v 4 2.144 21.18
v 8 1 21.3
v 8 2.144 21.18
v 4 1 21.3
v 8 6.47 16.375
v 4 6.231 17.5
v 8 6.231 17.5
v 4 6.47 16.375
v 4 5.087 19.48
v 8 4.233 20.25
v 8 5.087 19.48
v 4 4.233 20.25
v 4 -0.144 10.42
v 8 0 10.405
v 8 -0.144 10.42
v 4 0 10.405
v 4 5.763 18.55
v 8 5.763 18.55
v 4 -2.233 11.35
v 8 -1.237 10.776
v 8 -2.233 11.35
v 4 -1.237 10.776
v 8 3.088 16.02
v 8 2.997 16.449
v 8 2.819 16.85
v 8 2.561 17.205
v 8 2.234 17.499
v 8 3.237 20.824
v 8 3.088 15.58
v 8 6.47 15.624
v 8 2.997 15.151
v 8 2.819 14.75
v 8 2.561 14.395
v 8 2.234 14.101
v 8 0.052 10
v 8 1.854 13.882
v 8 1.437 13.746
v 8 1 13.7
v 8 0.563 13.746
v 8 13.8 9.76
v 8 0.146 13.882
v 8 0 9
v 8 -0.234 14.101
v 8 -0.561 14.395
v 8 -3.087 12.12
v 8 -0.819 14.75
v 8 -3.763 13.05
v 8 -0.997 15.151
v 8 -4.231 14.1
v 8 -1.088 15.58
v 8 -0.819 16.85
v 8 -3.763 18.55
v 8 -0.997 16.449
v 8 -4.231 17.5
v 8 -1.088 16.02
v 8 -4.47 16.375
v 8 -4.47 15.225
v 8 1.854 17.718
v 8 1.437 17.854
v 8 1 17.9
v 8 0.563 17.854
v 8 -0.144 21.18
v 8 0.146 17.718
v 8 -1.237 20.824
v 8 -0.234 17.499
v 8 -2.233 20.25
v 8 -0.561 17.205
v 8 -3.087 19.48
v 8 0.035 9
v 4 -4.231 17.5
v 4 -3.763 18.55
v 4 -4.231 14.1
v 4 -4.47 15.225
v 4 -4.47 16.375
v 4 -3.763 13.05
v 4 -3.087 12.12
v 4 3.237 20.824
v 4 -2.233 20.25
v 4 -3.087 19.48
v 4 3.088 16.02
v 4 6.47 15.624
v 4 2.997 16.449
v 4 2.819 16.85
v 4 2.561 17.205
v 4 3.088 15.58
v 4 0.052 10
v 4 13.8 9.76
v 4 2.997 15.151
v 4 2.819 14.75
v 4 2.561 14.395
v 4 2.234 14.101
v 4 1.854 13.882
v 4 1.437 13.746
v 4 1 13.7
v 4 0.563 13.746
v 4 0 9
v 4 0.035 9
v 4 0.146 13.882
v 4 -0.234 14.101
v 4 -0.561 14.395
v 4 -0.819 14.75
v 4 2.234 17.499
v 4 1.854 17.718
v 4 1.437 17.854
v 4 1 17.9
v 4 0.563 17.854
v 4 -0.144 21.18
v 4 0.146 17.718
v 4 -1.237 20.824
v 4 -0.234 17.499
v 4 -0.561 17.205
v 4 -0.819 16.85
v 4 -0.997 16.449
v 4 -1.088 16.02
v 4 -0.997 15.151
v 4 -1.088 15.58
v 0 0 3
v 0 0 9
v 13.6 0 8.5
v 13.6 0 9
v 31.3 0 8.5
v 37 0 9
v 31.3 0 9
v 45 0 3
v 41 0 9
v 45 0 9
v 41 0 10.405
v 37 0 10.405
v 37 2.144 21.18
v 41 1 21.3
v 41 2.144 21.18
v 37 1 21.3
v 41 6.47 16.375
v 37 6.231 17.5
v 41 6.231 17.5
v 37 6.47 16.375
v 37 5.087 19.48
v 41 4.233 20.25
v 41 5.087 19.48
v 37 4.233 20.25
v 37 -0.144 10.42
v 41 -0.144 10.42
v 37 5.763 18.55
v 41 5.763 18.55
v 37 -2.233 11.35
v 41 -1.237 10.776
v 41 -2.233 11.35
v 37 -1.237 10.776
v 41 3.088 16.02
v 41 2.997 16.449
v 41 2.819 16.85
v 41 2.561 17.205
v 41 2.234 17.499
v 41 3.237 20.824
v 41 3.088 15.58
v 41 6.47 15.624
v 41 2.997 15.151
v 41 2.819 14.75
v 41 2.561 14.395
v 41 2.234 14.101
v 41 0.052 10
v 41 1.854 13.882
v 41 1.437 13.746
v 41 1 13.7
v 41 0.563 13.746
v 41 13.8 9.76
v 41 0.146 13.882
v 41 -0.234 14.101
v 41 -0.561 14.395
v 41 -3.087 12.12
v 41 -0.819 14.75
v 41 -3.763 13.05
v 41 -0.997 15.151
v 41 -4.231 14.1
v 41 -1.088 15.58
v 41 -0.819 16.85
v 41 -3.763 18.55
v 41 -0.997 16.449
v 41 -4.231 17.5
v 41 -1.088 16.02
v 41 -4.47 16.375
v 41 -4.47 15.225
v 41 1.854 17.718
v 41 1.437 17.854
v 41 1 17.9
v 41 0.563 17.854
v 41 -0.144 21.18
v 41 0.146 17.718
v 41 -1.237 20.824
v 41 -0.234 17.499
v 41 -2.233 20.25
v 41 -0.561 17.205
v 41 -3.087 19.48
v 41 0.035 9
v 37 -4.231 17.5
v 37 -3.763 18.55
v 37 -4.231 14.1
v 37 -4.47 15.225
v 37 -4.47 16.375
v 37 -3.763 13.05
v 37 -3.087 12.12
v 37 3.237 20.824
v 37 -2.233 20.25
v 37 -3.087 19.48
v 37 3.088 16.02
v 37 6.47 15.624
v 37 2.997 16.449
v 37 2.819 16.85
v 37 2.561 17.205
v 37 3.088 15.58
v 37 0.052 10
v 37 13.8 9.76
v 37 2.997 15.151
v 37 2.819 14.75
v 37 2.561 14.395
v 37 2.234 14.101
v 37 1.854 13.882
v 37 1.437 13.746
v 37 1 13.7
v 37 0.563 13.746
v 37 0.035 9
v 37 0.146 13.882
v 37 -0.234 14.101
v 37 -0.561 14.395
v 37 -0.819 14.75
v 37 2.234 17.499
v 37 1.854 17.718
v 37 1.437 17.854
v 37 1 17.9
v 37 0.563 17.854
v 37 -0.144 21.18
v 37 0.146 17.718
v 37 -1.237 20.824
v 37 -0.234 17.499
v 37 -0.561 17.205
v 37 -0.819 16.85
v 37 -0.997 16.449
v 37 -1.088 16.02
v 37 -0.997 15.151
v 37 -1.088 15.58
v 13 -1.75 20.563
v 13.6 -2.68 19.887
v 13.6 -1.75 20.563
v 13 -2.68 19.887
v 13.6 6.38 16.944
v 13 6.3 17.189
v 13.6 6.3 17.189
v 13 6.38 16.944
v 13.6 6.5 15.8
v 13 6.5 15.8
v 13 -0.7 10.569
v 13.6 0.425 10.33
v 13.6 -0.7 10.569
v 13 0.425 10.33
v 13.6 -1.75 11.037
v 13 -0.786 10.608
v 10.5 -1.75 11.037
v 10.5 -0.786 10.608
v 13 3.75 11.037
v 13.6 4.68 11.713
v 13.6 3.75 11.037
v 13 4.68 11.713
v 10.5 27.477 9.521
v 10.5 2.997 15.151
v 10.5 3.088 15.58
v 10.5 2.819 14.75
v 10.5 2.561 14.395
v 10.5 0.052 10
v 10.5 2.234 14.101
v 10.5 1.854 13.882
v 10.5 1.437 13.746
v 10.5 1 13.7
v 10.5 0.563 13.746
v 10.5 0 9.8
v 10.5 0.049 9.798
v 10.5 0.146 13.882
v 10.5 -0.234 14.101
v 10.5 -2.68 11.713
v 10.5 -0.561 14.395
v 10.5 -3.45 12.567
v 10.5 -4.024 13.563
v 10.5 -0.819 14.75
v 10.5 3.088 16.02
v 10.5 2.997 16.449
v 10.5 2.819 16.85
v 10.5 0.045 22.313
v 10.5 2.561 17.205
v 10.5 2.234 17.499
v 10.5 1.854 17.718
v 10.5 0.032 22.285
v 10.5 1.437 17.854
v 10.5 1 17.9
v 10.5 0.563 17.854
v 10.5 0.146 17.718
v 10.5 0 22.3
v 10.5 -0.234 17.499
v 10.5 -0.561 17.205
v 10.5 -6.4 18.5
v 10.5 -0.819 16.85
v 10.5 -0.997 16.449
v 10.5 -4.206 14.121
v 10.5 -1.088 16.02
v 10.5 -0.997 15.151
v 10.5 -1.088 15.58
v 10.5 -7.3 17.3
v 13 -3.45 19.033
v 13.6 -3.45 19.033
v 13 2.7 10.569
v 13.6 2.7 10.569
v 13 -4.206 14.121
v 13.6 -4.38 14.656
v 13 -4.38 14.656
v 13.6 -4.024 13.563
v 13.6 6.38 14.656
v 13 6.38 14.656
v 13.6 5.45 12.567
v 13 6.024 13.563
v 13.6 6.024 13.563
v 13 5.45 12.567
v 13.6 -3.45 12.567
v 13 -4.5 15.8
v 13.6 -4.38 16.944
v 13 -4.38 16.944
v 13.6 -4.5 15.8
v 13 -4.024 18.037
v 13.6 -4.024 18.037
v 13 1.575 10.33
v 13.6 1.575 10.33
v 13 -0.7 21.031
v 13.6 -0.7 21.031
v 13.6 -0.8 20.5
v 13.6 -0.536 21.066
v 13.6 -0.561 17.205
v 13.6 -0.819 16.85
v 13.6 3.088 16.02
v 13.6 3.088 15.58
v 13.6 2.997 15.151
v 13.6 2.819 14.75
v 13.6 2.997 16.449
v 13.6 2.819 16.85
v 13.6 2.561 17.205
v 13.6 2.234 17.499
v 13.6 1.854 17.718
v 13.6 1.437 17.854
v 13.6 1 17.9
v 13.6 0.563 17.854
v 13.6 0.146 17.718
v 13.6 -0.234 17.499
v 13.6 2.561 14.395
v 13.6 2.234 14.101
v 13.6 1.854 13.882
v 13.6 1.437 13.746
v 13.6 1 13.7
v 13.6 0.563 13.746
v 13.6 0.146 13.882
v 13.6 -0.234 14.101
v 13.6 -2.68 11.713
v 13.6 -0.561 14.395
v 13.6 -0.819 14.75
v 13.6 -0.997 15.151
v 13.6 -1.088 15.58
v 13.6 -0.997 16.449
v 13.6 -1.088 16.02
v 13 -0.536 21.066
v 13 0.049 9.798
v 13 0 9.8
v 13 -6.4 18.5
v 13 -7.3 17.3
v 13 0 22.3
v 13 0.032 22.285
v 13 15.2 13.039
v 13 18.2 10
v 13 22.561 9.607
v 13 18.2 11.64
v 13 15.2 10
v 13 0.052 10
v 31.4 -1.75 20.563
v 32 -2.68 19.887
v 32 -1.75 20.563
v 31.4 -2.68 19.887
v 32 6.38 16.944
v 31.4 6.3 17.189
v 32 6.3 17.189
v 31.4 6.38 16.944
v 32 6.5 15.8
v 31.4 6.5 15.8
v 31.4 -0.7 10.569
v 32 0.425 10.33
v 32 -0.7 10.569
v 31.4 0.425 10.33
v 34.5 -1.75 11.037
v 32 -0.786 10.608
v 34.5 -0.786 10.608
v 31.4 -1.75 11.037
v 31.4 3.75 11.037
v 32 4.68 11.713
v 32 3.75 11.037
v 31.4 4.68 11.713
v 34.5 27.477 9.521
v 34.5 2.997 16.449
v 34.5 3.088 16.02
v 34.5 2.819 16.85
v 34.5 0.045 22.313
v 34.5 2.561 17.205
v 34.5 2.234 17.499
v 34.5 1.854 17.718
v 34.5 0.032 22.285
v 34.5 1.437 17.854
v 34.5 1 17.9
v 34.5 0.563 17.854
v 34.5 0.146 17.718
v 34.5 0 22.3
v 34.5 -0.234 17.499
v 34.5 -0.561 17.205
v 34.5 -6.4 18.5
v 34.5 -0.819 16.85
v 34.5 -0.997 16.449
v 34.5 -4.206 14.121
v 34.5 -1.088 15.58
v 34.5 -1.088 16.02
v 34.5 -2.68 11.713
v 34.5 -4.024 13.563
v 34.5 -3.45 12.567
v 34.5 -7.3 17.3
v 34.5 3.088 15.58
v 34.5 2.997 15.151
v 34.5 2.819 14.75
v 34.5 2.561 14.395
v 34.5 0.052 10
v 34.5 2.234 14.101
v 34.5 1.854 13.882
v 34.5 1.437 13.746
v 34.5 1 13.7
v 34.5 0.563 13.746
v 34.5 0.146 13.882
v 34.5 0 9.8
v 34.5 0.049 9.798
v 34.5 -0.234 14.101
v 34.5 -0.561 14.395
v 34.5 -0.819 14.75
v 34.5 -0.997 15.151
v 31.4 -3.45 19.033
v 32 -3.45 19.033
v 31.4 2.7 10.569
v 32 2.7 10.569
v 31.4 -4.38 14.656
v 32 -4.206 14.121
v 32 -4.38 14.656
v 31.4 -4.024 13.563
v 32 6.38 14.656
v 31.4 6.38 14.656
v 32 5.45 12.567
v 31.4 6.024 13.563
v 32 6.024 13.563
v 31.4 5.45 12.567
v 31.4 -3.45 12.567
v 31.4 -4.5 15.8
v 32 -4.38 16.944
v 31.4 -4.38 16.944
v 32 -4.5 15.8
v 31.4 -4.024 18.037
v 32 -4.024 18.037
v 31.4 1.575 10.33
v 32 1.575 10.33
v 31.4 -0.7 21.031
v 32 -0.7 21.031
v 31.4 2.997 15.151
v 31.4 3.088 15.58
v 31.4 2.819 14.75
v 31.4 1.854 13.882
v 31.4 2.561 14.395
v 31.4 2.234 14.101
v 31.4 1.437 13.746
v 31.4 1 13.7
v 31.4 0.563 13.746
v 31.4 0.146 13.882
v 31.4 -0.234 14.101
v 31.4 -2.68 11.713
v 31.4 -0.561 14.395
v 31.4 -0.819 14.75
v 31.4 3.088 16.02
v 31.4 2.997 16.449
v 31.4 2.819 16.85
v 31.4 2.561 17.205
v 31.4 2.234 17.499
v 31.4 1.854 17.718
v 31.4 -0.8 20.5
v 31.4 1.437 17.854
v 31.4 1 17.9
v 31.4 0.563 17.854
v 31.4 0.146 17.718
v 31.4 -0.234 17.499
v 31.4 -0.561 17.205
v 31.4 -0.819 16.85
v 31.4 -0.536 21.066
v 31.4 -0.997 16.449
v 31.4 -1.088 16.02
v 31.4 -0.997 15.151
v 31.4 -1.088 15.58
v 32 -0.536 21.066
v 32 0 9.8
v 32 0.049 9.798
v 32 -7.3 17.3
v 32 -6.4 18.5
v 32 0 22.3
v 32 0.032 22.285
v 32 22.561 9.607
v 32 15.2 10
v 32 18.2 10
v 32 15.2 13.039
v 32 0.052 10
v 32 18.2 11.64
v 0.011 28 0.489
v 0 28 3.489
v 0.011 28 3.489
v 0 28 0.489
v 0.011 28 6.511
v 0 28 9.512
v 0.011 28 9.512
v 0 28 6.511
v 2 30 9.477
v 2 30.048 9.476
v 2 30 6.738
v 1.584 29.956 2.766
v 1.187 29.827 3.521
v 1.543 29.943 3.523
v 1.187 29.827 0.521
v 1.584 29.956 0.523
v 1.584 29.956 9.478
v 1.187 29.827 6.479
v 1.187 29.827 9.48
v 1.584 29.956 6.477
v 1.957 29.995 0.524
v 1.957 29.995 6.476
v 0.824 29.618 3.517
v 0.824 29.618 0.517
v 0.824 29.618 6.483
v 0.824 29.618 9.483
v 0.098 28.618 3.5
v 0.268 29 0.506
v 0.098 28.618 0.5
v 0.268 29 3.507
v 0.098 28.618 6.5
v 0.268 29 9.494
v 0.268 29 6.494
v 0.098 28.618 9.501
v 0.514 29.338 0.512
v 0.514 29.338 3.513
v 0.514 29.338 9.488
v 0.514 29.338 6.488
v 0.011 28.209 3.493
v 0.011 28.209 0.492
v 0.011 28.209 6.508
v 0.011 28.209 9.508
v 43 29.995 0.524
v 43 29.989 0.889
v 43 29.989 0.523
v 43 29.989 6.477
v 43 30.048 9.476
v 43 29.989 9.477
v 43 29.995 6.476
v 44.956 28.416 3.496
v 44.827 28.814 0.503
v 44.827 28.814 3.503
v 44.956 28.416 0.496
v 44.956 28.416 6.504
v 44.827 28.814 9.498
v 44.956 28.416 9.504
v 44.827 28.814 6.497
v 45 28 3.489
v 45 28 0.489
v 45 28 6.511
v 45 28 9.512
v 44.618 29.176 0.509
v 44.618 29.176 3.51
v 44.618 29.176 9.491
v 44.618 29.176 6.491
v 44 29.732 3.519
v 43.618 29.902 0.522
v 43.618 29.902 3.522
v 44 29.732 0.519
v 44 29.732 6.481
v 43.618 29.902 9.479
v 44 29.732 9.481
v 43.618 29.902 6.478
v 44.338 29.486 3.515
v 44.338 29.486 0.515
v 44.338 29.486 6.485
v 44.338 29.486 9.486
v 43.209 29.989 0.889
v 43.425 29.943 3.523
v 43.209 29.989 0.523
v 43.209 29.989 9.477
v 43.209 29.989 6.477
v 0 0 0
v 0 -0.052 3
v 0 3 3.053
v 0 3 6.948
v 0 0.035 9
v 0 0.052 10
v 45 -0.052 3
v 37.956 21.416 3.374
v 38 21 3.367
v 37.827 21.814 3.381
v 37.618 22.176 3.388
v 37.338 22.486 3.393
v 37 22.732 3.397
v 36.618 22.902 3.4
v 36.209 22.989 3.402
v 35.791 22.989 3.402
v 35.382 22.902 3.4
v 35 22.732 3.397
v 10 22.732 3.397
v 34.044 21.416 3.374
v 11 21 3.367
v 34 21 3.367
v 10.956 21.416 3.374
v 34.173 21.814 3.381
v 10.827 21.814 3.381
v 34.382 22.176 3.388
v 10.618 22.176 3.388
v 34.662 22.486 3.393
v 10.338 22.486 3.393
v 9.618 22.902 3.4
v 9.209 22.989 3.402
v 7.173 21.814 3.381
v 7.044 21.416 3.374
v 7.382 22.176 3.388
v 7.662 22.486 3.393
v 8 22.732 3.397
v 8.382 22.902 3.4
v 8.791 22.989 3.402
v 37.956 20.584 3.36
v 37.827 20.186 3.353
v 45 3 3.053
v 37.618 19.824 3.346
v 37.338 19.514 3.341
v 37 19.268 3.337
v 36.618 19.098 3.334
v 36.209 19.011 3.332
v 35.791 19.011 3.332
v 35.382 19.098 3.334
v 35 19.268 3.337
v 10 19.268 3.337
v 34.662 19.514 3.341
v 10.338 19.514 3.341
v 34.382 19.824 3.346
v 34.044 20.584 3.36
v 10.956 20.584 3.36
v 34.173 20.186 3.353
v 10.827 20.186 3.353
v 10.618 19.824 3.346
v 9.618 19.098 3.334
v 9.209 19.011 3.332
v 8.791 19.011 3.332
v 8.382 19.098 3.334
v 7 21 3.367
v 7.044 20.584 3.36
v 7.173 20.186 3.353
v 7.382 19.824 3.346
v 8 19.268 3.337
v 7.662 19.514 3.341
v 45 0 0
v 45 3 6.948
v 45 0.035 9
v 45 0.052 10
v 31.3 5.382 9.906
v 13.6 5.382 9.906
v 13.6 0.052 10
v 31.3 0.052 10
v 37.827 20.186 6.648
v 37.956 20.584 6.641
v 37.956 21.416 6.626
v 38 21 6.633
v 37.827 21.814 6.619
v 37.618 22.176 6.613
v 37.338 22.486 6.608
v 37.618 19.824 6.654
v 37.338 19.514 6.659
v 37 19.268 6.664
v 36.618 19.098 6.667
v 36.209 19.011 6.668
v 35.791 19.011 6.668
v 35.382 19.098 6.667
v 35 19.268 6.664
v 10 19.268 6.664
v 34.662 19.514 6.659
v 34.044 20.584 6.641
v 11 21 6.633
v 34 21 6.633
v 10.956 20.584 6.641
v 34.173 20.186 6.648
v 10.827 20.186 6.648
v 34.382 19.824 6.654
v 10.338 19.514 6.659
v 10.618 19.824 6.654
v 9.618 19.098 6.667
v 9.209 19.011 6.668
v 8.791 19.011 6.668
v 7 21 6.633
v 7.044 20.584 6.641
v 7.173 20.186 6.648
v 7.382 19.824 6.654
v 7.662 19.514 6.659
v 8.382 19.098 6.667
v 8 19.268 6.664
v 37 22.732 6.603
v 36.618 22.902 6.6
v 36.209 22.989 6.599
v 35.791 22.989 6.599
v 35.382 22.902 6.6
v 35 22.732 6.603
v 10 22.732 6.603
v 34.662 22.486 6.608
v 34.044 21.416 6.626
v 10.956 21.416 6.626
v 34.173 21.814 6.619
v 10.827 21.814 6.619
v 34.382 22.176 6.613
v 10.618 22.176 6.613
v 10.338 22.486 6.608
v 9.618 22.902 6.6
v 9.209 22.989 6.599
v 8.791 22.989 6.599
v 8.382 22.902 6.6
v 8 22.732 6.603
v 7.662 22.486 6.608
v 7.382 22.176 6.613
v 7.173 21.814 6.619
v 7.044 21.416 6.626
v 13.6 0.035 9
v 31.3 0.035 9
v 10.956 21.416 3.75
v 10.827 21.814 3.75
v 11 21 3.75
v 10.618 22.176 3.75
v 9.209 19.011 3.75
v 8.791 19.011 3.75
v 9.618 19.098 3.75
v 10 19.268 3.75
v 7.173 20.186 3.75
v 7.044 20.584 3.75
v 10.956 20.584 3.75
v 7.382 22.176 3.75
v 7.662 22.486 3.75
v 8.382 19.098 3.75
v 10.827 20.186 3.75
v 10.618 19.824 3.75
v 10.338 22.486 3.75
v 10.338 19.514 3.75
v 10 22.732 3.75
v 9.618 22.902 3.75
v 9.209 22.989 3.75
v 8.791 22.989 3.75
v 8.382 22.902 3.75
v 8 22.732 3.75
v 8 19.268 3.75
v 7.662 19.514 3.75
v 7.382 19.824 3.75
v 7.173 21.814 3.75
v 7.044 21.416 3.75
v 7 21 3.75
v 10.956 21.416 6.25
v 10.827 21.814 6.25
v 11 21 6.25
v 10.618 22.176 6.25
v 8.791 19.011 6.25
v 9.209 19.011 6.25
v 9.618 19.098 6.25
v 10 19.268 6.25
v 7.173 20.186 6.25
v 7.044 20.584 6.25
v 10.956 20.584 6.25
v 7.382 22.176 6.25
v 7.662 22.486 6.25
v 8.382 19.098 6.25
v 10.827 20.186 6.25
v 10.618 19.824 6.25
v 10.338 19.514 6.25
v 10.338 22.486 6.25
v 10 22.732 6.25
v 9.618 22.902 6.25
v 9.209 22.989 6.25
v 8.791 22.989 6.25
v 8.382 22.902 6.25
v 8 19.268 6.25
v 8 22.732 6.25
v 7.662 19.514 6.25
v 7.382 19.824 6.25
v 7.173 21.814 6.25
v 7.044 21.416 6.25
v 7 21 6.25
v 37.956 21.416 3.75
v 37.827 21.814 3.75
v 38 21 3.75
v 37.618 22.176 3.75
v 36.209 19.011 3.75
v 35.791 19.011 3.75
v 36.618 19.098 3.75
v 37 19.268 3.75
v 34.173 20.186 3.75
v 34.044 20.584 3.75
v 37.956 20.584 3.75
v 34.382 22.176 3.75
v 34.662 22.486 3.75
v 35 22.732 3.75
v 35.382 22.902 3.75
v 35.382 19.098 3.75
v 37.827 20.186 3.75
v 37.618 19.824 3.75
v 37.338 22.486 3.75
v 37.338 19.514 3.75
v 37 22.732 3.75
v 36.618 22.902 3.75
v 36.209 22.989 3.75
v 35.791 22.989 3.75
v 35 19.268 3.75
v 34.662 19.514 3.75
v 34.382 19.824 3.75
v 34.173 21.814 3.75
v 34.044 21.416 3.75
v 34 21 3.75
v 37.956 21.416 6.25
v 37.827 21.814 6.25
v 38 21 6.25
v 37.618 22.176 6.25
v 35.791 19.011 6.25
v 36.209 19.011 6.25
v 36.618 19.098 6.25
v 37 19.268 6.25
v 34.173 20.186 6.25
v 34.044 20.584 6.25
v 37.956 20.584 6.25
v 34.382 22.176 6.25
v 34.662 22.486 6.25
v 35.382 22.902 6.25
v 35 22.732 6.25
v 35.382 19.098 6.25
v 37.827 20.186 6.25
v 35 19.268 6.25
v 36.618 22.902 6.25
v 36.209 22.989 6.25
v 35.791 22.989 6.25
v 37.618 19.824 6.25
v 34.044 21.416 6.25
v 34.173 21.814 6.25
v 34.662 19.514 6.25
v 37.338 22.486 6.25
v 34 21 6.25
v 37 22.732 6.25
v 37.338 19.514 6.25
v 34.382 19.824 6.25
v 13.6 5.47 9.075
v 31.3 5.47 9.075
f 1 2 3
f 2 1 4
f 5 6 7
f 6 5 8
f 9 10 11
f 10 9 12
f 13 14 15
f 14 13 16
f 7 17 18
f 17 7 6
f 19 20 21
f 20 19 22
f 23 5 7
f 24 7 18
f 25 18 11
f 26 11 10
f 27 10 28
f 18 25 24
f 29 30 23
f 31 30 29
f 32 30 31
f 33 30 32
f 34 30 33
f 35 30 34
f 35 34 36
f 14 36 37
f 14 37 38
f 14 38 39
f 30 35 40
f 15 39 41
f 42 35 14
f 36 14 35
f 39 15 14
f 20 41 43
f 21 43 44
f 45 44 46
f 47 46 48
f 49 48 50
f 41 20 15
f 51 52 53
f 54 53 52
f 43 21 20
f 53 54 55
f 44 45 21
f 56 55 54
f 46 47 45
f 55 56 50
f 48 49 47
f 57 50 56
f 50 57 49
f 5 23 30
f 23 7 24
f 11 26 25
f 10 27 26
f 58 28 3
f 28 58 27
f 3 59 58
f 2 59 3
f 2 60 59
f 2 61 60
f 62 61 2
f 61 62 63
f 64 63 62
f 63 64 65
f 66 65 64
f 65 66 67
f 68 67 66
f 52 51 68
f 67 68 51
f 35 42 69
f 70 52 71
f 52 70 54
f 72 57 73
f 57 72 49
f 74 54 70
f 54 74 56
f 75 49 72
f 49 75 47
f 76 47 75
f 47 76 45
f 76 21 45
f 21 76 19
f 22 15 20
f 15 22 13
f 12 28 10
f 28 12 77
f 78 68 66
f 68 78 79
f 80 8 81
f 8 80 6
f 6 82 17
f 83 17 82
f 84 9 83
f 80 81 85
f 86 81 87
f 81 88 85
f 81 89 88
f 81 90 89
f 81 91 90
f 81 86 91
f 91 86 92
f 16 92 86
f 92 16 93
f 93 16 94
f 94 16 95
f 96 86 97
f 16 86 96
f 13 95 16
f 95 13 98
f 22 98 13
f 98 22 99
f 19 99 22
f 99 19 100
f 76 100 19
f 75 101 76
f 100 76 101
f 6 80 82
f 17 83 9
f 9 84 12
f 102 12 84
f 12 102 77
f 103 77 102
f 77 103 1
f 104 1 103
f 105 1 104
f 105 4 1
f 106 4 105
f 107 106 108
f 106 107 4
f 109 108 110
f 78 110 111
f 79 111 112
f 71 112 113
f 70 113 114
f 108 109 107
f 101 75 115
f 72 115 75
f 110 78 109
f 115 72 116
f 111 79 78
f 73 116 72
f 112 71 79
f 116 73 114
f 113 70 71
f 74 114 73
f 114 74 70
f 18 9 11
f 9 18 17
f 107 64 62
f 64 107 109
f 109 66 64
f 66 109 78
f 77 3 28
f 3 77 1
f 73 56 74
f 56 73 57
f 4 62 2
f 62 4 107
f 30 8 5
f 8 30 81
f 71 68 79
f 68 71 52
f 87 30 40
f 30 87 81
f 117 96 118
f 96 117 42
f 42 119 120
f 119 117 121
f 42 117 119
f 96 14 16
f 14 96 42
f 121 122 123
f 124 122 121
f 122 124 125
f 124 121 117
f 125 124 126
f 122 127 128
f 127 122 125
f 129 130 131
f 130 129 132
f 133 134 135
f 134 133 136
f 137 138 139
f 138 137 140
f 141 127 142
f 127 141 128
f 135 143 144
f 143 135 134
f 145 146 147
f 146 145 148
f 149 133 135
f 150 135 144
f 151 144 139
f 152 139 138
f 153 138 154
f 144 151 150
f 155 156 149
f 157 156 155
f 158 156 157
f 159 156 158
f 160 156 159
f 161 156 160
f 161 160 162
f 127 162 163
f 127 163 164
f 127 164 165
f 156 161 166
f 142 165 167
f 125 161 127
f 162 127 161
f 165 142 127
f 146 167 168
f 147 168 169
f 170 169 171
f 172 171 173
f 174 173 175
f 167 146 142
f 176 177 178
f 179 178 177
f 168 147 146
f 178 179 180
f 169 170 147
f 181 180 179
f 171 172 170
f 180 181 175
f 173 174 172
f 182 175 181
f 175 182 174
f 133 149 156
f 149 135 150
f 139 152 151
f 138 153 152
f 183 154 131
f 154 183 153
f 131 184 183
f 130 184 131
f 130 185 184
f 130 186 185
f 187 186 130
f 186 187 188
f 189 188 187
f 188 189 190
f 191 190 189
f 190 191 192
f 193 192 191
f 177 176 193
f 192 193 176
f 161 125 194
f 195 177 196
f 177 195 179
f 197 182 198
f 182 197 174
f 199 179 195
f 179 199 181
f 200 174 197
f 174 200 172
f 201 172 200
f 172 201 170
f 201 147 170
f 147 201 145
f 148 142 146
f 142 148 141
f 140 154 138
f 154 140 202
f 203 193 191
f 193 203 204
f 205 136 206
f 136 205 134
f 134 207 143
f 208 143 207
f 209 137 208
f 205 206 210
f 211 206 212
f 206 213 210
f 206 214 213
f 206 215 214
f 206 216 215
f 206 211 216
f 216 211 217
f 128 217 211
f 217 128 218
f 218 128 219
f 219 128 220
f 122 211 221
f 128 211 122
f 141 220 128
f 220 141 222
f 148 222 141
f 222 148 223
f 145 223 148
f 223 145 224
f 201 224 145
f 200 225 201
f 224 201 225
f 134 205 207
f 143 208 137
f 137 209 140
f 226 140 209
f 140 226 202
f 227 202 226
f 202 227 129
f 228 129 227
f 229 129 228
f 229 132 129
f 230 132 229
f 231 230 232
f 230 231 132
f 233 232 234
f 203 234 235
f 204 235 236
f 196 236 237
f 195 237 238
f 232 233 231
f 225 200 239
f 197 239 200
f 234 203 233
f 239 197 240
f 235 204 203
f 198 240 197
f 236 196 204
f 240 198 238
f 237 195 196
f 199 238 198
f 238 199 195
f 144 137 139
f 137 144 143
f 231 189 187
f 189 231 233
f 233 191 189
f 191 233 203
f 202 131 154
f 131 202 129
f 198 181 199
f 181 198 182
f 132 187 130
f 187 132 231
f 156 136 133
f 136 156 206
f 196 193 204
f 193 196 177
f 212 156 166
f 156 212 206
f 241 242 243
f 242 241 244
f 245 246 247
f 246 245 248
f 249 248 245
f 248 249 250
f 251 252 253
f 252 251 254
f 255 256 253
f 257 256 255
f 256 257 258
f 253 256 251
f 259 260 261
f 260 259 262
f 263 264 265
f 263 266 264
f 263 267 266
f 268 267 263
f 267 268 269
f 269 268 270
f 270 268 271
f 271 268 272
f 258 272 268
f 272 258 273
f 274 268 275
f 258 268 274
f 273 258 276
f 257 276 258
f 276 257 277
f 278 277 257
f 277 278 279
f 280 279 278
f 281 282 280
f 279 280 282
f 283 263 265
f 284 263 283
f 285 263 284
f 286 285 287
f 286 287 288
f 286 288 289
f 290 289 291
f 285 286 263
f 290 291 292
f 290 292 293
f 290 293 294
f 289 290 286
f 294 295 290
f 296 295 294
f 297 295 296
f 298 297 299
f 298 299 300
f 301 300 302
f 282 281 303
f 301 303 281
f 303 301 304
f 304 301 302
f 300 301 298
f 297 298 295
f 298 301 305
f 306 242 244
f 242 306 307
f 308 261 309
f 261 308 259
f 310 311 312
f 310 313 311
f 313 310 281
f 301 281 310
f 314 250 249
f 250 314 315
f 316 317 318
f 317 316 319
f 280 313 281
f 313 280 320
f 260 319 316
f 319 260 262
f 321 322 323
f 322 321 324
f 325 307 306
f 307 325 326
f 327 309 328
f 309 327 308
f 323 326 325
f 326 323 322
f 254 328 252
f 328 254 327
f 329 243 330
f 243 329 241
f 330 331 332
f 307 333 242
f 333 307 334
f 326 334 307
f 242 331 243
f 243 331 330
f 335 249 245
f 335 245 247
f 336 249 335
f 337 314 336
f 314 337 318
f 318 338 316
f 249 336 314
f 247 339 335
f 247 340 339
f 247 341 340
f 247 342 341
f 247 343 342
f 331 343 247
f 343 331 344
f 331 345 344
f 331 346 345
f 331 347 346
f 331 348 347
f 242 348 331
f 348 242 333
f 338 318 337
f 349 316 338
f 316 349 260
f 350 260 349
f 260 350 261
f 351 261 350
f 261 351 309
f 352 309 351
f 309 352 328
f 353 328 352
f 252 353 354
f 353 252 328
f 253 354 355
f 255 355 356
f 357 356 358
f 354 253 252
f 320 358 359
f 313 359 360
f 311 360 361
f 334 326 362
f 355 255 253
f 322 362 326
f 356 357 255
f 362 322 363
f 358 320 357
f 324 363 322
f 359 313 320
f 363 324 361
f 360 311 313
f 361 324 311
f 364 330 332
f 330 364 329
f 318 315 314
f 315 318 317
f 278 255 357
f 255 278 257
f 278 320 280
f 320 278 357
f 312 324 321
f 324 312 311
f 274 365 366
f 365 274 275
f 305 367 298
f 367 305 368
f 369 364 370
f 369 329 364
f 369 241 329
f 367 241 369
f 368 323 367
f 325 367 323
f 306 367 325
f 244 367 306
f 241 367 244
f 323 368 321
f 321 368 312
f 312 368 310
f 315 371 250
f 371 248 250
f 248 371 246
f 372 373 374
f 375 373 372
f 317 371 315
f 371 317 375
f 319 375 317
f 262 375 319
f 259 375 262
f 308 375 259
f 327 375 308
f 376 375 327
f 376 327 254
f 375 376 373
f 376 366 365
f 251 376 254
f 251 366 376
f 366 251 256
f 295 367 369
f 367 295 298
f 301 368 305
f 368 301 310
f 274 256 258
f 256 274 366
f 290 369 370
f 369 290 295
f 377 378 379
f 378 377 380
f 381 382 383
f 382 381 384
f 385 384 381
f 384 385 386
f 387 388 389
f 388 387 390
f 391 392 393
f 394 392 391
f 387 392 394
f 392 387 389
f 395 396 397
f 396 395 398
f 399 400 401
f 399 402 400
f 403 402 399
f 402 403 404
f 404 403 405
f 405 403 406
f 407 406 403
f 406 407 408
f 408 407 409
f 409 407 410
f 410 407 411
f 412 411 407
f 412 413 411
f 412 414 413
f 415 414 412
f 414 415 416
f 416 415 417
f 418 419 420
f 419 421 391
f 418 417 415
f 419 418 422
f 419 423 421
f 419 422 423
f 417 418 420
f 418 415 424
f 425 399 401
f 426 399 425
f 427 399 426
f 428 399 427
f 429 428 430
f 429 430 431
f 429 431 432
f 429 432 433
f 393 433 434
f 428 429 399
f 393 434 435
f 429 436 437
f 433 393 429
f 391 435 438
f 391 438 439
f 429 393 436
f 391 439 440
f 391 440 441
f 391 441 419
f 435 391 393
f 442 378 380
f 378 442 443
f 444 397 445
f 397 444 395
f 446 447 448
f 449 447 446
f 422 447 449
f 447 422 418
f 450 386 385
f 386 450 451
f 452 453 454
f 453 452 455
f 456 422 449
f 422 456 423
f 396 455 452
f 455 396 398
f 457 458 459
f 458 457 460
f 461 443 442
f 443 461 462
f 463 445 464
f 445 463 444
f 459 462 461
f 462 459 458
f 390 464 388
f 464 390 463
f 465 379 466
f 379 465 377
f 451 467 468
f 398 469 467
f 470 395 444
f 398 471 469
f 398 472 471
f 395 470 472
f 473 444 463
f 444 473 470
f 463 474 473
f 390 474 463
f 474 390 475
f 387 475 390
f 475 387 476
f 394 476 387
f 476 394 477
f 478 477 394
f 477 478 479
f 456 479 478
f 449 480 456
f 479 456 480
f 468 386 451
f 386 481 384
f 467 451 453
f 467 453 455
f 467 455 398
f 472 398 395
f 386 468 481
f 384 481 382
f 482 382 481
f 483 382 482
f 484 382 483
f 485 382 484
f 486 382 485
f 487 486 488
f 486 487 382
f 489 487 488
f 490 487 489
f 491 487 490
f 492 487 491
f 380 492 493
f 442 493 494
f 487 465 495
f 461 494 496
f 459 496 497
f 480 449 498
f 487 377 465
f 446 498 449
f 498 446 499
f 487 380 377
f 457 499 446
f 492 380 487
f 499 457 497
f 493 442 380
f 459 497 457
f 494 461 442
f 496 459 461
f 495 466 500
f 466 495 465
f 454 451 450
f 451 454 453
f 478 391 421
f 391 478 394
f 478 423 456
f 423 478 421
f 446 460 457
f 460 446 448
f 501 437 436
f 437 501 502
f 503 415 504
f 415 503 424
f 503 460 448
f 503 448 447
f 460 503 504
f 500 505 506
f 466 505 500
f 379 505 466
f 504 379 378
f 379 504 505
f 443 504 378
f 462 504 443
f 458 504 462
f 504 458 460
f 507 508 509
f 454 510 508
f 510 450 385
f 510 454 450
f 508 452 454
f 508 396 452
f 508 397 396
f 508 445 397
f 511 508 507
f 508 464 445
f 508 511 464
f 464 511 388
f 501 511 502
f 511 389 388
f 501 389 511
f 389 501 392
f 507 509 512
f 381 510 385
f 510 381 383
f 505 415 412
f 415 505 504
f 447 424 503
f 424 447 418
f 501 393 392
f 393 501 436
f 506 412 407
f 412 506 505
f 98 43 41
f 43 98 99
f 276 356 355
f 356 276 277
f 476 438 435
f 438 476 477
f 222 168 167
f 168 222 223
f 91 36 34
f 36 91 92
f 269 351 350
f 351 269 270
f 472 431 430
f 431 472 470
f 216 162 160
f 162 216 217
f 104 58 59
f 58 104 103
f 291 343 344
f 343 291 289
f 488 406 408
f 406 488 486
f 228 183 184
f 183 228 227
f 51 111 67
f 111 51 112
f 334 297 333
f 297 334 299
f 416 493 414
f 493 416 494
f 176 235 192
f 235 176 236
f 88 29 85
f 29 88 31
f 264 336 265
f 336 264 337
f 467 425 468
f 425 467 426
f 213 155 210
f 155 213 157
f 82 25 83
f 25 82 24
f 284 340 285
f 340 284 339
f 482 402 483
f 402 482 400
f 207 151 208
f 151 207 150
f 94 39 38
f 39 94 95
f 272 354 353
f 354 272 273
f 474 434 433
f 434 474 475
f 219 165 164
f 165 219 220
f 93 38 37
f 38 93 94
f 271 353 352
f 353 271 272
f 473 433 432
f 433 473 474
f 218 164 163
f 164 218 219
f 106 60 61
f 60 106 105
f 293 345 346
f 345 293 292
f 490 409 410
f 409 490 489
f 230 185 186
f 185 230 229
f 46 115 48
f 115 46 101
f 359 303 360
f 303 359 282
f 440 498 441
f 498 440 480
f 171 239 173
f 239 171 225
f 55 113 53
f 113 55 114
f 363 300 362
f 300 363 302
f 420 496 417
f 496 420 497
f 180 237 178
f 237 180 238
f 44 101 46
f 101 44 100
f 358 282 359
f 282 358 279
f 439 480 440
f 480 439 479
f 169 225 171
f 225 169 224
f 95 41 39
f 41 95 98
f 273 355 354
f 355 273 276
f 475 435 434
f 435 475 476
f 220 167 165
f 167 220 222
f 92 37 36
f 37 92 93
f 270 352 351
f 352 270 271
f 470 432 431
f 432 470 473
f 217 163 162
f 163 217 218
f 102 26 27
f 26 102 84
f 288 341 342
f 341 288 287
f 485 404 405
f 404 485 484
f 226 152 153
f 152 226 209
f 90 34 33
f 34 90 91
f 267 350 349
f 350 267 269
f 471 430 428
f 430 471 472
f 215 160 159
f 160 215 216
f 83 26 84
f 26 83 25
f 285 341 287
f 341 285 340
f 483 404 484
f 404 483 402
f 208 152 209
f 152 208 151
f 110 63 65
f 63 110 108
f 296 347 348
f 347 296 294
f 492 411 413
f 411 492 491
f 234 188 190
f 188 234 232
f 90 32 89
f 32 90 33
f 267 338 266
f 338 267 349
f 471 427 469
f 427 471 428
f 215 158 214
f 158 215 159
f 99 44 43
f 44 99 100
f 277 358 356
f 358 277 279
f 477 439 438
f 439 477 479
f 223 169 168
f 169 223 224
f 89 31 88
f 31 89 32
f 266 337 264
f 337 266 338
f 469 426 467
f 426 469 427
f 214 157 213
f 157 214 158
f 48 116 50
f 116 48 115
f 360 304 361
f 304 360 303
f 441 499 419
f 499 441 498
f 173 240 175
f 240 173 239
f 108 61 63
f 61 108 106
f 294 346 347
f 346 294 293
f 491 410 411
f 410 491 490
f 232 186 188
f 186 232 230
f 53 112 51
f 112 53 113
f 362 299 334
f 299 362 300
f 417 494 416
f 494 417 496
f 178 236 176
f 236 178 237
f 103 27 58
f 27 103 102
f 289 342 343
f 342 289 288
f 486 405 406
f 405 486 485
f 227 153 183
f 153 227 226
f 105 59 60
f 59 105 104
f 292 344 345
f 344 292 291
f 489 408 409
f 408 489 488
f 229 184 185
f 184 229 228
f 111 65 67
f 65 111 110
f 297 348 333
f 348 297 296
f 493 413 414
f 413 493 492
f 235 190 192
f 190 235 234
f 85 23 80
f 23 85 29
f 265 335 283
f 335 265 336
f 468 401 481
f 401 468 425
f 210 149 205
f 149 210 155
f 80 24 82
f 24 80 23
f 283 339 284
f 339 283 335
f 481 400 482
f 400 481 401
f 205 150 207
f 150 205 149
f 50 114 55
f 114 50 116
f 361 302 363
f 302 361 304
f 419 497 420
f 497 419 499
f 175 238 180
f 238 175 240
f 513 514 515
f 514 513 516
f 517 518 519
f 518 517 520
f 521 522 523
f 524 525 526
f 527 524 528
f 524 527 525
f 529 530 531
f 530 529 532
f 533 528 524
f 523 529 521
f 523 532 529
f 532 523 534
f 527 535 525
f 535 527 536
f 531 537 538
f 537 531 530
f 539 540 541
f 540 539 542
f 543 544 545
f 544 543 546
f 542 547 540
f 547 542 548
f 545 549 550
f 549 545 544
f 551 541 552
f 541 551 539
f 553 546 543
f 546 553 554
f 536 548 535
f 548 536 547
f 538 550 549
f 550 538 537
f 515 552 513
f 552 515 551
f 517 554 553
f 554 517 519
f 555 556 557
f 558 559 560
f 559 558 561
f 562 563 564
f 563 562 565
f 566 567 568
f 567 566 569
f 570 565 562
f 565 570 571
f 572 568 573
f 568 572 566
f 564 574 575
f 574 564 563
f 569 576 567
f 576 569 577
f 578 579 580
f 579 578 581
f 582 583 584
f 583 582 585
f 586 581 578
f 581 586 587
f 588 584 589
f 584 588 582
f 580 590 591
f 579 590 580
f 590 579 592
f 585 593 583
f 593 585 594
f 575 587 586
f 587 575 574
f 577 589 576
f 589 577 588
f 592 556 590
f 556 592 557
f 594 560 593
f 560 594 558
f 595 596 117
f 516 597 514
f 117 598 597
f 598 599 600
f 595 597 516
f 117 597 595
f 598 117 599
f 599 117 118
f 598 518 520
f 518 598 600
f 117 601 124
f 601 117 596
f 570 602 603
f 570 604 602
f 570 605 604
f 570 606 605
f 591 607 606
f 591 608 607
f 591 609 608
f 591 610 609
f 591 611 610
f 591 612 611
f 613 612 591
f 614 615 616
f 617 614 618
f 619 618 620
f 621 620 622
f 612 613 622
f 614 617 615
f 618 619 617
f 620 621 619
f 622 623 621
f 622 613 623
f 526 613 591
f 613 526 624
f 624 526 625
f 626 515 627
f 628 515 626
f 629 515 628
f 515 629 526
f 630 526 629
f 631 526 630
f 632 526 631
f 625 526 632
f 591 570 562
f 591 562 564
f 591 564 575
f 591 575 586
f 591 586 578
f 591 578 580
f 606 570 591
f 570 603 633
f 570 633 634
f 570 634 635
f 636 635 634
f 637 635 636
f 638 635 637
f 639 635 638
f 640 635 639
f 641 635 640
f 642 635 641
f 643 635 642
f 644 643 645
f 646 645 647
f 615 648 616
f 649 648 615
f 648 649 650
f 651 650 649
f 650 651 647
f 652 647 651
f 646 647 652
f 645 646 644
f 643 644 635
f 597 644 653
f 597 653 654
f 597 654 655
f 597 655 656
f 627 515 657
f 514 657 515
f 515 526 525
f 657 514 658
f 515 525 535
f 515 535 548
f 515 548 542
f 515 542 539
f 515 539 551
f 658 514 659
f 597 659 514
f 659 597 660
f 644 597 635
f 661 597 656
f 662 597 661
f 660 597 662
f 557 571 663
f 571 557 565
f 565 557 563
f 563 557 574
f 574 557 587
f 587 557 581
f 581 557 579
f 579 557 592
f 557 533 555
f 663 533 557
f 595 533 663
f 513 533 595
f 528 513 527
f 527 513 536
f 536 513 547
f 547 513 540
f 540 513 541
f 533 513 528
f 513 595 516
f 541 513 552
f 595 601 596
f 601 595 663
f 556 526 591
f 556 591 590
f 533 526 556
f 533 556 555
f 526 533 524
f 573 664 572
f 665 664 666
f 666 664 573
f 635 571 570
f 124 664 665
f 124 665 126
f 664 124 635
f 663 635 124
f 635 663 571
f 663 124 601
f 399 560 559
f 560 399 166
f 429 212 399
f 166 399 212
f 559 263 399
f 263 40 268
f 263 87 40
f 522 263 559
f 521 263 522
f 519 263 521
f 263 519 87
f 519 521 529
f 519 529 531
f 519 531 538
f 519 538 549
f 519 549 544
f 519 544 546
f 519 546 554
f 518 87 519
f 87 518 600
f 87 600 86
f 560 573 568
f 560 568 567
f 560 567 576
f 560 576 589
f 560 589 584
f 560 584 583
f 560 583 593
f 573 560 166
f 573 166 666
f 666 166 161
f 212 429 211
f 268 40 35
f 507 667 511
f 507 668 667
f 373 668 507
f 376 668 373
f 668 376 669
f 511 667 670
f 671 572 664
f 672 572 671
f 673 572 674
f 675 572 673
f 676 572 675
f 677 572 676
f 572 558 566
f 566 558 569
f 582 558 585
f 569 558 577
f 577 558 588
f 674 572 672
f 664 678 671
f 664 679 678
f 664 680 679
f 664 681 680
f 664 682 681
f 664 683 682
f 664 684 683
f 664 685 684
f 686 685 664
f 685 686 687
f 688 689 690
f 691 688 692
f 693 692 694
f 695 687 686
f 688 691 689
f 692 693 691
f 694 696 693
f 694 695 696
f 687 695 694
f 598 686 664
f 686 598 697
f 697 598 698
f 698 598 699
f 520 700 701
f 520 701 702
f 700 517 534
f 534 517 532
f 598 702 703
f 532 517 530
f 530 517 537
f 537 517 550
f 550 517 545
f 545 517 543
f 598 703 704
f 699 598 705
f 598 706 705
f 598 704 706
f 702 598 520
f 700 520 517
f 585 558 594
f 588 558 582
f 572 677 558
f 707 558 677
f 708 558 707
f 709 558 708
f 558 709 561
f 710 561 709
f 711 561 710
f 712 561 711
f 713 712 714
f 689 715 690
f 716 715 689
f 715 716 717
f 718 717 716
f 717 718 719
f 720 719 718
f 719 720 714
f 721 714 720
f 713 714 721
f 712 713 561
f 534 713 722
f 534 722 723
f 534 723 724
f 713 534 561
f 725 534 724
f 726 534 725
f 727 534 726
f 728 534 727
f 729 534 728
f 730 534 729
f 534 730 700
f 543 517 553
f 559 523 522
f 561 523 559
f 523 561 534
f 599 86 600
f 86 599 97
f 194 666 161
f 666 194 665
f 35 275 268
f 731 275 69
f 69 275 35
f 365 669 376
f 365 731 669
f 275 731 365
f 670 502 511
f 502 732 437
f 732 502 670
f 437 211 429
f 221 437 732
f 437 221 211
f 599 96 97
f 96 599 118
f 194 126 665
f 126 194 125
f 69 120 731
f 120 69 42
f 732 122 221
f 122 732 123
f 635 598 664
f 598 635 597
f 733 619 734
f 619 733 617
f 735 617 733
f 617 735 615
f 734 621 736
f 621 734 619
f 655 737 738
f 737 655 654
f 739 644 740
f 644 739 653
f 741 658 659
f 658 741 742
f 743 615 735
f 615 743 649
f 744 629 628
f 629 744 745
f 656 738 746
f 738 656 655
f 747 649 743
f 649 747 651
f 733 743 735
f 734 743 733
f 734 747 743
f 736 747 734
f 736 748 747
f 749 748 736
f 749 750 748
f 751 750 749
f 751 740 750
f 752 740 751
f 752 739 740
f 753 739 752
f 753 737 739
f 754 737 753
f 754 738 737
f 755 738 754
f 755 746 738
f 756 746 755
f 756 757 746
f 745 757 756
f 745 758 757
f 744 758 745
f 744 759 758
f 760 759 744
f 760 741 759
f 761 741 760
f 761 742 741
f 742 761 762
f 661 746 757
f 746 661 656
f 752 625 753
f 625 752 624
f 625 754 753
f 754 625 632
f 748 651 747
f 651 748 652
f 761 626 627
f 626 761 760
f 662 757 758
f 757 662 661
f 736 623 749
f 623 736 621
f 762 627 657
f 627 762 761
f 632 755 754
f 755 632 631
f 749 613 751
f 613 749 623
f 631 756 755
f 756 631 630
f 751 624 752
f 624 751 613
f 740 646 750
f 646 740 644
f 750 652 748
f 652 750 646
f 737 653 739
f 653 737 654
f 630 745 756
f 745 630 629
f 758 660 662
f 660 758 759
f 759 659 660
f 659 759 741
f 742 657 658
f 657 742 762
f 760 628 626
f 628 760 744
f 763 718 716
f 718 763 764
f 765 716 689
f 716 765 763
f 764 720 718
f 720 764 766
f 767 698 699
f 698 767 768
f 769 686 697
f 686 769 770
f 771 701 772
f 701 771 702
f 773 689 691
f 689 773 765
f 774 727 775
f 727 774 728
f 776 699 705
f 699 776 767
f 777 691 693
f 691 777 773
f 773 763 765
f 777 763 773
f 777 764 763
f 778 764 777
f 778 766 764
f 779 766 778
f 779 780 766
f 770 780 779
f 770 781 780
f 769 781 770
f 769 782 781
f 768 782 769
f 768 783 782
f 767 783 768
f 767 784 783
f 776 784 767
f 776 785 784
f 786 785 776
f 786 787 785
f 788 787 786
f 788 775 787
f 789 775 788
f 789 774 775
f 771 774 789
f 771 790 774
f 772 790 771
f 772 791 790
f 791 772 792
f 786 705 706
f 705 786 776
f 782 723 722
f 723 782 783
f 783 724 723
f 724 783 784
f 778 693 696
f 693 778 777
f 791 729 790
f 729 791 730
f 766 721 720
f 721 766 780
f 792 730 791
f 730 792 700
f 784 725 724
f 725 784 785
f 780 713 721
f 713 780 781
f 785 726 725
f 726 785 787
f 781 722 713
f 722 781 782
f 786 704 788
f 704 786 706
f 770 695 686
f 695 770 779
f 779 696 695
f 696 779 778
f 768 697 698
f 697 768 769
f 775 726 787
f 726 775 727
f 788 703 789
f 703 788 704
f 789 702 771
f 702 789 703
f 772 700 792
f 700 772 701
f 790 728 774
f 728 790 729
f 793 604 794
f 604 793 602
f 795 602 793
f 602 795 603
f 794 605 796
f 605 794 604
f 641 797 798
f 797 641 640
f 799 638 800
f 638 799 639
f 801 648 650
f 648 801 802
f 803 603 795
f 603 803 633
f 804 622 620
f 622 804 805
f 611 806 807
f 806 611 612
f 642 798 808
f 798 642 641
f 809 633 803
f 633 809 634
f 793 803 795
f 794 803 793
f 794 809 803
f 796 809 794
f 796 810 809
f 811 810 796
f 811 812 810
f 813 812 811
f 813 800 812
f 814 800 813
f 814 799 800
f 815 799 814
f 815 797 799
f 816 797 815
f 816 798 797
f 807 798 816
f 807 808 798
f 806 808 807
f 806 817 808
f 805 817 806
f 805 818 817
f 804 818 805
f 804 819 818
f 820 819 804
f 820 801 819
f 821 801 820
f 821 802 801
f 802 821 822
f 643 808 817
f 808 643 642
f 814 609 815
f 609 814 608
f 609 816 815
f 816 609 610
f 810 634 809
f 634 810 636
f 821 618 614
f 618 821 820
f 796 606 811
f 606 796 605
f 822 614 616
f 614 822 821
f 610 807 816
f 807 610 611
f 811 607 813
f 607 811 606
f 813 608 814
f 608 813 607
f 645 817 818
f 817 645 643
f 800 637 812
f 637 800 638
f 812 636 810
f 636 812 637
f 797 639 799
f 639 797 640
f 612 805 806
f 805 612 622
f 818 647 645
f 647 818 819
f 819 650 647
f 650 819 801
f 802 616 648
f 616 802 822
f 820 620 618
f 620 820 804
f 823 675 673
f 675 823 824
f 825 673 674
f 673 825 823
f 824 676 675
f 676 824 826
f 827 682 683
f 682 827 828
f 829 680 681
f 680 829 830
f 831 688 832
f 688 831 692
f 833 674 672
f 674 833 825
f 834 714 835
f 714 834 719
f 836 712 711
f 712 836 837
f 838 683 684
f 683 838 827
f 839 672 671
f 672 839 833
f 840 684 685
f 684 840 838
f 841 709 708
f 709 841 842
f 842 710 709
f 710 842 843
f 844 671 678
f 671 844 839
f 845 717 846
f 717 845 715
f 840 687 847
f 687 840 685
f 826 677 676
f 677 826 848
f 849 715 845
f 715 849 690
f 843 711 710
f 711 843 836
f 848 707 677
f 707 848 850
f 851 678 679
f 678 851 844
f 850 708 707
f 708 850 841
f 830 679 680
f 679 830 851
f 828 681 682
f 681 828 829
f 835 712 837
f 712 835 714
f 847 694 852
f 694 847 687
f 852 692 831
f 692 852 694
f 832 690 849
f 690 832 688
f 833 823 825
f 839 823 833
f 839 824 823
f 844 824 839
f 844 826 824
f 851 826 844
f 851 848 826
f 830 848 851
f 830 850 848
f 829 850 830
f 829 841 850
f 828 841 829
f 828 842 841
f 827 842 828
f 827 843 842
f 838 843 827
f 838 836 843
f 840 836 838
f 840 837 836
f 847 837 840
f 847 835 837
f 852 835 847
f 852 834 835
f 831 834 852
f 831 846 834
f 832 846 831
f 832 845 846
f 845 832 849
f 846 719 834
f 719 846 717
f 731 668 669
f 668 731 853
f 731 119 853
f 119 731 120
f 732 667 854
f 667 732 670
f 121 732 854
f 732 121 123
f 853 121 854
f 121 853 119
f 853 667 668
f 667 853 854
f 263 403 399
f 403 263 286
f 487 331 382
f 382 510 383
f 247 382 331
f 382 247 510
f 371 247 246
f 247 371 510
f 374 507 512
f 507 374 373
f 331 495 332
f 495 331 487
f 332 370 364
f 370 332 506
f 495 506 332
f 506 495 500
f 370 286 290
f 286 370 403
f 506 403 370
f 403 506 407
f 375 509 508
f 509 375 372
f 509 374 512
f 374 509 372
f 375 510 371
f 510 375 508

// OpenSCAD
module bracket_side(){
    cube([45, 30, 3]);
}

module pin(){
    cylinder(h = 1, r = 2, $fn=30);
}

module raw_bracket(){
    union(){
        translate([0, 0, 0]) rotate([1, 0, 0]) bracket_side();
        translate([0, 0, 7]) rotate([-1, 0, 0]) bracket_side();
        translate([0, 0, 1]) cube([45, 3, 8]);

        //Pins
        translate([9, 21, 2.75]) pin();
        translate([9, 21, 6.25]) pin();
        translate([36, 21, 2.75]) pin();
        translate([36, 21, 6.25]) pin();
    }
}

module corner_cutout(){
    difference(){
        cube([3, 3, 15]);
        cylinder(h=15, r=2, $fn=30);
    }
}

difference(){
    raw_bracket();
    // Cutout between bearings
    translate([13.6, 0, 8.5]) rotate([6, 0, 0]) cube([17.7, 5.5, 1.5]);
    // Rounded Corners
    translate([2, 28, 0]) rotate([0, 0, 90]) corner_cutout();
    translate([43, 28, 0]) rotate([0, 0, 0]) corner_cutout();
}

module outer_bearing (){
    rotate([0, 90, 0]){
        union(){
            cylinder(h=4, r=5.5, $fn=30);
            translate([7, -1, 2]){
                rotate([0, 0, 90]){
                    linear_extrude(height = 4, center = true, convexity = 10, twist = 0)
                        polygon(points=[[0,0],[15,0],[0,12]], paths=[[0,1,2]]);
                }
            }
        }
    }
}

module inner_bearing() {
    rotate([90, 0, 90]) union(){
        translate([1, 5.5, 0]) cylinder(h=3.1, r=5.5, $fn=30);
        linear_extrude(height=2.5, center=false, convexity=10, twist=0)
            polygon(points=[[0, -0.5], [-7.3, 7], [-6.4, 8.2], [0, 12], [30, -2]], paths=[[0, 1, 2, 3, 4, 5]]);
    }
}

difference(){
    union(){
        translate([4, 1, 15.8]) outer_bearing();
        translate([37, 1, 15.8]) outer_bearing();
        translate([10.5, 0, 10.3]) inner_bearing();
        translate([34.5, 0, 10.3]) mirror([1, 0, 0]) inner_bearing();
    }
    translate([0, 1, 15.8]) rotate([0, 90, 0]) cylinder(h=45, r=2.1, $fn=30);
}

module lid(){
    rotate([-25, 0, 0]) cube([24, 31, 2]);
}

translate([10.5, -0.8, 20.5]) lid();

module lid_support(){
    cube([24, 3, 3.7]);
}

translate([10.5, 15.2, 10]) lid_support(); 
